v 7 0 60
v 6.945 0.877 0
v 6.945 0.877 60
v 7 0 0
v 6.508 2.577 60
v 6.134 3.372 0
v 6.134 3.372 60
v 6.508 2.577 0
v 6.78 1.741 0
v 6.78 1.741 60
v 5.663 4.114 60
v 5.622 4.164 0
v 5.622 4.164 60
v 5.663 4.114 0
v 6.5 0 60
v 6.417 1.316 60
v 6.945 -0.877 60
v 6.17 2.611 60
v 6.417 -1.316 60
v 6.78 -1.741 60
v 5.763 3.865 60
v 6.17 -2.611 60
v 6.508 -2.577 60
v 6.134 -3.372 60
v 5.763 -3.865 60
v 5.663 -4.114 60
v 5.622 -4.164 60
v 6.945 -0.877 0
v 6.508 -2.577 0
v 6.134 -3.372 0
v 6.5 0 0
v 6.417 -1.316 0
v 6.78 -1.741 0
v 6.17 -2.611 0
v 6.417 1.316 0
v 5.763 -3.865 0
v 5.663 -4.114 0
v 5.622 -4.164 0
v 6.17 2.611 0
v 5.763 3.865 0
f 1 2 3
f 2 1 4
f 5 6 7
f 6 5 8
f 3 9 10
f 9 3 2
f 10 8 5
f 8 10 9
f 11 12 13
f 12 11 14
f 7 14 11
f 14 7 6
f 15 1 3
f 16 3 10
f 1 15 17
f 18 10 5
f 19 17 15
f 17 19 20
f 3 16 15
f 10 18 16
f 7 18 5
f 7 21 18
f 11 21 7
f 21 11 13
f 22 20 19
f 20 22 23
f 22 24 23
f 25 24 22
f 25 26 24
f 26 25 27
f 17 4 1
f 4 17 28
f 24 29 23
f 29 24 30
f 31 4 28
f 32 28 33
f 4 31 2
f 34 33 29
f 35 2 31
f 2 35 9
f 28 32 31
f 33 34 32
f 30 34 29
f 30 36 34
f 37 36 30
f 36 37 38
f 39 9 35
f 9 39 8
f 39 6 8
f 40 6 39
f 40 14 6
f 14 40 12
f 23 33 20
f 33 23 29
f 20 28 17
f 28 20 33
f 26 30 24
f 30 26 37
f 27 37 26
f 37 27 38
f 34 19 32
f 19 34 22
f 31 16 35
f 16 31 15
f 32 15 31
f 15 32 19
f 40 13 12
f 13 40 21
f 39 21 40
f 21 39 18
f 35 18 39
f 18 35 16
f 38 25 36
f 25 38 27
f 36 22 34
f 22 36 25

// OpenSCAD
$fn = 50;


difference() {
	union() {
		cylinder(h = 60, r = 7.0000000000);
		translate(v = [-7.0000000000, 0, 0]) {
			cylinder(h = 60, r = 7.0000000000);
		}
	}
	union() {
		cylinder(h = 60, r = 3.2500000000);
		cylinder(h = 60, r = 1.8000000000);
		cylinder(h = 60, r = 1.8000000000);
		cylinder(h = 60, r = 1.8000000000);
		translate(v = [-11.5000000000, 0, 0]) {
			hull() {
				translate(v = [-3.7500000000, 0.0000000000, 0]) {
					cylinder(h = 60, r = 7.5000000000);
				}
				translate(v = [3.7500000000, 0.0000000000, 0]) {
					cylinder(h = 60, r = 7.5000000000);
				}
				translate(v = [-3.7500000000, -0.0000000000, 0]) {
					cylinder(h = 60, r = 7.5000000000);
				}
				translate(v = [3.7500000000, -0.0000000000, 0]) {
					cylinder(h = 60, r = 7.5000000000);
				}
			}
		}
		translate(v = [-4.0000000000, 0, 0.0000000000]) {
			cylinder(h = 60, r = 10.5000000000);
		}
	}
}
